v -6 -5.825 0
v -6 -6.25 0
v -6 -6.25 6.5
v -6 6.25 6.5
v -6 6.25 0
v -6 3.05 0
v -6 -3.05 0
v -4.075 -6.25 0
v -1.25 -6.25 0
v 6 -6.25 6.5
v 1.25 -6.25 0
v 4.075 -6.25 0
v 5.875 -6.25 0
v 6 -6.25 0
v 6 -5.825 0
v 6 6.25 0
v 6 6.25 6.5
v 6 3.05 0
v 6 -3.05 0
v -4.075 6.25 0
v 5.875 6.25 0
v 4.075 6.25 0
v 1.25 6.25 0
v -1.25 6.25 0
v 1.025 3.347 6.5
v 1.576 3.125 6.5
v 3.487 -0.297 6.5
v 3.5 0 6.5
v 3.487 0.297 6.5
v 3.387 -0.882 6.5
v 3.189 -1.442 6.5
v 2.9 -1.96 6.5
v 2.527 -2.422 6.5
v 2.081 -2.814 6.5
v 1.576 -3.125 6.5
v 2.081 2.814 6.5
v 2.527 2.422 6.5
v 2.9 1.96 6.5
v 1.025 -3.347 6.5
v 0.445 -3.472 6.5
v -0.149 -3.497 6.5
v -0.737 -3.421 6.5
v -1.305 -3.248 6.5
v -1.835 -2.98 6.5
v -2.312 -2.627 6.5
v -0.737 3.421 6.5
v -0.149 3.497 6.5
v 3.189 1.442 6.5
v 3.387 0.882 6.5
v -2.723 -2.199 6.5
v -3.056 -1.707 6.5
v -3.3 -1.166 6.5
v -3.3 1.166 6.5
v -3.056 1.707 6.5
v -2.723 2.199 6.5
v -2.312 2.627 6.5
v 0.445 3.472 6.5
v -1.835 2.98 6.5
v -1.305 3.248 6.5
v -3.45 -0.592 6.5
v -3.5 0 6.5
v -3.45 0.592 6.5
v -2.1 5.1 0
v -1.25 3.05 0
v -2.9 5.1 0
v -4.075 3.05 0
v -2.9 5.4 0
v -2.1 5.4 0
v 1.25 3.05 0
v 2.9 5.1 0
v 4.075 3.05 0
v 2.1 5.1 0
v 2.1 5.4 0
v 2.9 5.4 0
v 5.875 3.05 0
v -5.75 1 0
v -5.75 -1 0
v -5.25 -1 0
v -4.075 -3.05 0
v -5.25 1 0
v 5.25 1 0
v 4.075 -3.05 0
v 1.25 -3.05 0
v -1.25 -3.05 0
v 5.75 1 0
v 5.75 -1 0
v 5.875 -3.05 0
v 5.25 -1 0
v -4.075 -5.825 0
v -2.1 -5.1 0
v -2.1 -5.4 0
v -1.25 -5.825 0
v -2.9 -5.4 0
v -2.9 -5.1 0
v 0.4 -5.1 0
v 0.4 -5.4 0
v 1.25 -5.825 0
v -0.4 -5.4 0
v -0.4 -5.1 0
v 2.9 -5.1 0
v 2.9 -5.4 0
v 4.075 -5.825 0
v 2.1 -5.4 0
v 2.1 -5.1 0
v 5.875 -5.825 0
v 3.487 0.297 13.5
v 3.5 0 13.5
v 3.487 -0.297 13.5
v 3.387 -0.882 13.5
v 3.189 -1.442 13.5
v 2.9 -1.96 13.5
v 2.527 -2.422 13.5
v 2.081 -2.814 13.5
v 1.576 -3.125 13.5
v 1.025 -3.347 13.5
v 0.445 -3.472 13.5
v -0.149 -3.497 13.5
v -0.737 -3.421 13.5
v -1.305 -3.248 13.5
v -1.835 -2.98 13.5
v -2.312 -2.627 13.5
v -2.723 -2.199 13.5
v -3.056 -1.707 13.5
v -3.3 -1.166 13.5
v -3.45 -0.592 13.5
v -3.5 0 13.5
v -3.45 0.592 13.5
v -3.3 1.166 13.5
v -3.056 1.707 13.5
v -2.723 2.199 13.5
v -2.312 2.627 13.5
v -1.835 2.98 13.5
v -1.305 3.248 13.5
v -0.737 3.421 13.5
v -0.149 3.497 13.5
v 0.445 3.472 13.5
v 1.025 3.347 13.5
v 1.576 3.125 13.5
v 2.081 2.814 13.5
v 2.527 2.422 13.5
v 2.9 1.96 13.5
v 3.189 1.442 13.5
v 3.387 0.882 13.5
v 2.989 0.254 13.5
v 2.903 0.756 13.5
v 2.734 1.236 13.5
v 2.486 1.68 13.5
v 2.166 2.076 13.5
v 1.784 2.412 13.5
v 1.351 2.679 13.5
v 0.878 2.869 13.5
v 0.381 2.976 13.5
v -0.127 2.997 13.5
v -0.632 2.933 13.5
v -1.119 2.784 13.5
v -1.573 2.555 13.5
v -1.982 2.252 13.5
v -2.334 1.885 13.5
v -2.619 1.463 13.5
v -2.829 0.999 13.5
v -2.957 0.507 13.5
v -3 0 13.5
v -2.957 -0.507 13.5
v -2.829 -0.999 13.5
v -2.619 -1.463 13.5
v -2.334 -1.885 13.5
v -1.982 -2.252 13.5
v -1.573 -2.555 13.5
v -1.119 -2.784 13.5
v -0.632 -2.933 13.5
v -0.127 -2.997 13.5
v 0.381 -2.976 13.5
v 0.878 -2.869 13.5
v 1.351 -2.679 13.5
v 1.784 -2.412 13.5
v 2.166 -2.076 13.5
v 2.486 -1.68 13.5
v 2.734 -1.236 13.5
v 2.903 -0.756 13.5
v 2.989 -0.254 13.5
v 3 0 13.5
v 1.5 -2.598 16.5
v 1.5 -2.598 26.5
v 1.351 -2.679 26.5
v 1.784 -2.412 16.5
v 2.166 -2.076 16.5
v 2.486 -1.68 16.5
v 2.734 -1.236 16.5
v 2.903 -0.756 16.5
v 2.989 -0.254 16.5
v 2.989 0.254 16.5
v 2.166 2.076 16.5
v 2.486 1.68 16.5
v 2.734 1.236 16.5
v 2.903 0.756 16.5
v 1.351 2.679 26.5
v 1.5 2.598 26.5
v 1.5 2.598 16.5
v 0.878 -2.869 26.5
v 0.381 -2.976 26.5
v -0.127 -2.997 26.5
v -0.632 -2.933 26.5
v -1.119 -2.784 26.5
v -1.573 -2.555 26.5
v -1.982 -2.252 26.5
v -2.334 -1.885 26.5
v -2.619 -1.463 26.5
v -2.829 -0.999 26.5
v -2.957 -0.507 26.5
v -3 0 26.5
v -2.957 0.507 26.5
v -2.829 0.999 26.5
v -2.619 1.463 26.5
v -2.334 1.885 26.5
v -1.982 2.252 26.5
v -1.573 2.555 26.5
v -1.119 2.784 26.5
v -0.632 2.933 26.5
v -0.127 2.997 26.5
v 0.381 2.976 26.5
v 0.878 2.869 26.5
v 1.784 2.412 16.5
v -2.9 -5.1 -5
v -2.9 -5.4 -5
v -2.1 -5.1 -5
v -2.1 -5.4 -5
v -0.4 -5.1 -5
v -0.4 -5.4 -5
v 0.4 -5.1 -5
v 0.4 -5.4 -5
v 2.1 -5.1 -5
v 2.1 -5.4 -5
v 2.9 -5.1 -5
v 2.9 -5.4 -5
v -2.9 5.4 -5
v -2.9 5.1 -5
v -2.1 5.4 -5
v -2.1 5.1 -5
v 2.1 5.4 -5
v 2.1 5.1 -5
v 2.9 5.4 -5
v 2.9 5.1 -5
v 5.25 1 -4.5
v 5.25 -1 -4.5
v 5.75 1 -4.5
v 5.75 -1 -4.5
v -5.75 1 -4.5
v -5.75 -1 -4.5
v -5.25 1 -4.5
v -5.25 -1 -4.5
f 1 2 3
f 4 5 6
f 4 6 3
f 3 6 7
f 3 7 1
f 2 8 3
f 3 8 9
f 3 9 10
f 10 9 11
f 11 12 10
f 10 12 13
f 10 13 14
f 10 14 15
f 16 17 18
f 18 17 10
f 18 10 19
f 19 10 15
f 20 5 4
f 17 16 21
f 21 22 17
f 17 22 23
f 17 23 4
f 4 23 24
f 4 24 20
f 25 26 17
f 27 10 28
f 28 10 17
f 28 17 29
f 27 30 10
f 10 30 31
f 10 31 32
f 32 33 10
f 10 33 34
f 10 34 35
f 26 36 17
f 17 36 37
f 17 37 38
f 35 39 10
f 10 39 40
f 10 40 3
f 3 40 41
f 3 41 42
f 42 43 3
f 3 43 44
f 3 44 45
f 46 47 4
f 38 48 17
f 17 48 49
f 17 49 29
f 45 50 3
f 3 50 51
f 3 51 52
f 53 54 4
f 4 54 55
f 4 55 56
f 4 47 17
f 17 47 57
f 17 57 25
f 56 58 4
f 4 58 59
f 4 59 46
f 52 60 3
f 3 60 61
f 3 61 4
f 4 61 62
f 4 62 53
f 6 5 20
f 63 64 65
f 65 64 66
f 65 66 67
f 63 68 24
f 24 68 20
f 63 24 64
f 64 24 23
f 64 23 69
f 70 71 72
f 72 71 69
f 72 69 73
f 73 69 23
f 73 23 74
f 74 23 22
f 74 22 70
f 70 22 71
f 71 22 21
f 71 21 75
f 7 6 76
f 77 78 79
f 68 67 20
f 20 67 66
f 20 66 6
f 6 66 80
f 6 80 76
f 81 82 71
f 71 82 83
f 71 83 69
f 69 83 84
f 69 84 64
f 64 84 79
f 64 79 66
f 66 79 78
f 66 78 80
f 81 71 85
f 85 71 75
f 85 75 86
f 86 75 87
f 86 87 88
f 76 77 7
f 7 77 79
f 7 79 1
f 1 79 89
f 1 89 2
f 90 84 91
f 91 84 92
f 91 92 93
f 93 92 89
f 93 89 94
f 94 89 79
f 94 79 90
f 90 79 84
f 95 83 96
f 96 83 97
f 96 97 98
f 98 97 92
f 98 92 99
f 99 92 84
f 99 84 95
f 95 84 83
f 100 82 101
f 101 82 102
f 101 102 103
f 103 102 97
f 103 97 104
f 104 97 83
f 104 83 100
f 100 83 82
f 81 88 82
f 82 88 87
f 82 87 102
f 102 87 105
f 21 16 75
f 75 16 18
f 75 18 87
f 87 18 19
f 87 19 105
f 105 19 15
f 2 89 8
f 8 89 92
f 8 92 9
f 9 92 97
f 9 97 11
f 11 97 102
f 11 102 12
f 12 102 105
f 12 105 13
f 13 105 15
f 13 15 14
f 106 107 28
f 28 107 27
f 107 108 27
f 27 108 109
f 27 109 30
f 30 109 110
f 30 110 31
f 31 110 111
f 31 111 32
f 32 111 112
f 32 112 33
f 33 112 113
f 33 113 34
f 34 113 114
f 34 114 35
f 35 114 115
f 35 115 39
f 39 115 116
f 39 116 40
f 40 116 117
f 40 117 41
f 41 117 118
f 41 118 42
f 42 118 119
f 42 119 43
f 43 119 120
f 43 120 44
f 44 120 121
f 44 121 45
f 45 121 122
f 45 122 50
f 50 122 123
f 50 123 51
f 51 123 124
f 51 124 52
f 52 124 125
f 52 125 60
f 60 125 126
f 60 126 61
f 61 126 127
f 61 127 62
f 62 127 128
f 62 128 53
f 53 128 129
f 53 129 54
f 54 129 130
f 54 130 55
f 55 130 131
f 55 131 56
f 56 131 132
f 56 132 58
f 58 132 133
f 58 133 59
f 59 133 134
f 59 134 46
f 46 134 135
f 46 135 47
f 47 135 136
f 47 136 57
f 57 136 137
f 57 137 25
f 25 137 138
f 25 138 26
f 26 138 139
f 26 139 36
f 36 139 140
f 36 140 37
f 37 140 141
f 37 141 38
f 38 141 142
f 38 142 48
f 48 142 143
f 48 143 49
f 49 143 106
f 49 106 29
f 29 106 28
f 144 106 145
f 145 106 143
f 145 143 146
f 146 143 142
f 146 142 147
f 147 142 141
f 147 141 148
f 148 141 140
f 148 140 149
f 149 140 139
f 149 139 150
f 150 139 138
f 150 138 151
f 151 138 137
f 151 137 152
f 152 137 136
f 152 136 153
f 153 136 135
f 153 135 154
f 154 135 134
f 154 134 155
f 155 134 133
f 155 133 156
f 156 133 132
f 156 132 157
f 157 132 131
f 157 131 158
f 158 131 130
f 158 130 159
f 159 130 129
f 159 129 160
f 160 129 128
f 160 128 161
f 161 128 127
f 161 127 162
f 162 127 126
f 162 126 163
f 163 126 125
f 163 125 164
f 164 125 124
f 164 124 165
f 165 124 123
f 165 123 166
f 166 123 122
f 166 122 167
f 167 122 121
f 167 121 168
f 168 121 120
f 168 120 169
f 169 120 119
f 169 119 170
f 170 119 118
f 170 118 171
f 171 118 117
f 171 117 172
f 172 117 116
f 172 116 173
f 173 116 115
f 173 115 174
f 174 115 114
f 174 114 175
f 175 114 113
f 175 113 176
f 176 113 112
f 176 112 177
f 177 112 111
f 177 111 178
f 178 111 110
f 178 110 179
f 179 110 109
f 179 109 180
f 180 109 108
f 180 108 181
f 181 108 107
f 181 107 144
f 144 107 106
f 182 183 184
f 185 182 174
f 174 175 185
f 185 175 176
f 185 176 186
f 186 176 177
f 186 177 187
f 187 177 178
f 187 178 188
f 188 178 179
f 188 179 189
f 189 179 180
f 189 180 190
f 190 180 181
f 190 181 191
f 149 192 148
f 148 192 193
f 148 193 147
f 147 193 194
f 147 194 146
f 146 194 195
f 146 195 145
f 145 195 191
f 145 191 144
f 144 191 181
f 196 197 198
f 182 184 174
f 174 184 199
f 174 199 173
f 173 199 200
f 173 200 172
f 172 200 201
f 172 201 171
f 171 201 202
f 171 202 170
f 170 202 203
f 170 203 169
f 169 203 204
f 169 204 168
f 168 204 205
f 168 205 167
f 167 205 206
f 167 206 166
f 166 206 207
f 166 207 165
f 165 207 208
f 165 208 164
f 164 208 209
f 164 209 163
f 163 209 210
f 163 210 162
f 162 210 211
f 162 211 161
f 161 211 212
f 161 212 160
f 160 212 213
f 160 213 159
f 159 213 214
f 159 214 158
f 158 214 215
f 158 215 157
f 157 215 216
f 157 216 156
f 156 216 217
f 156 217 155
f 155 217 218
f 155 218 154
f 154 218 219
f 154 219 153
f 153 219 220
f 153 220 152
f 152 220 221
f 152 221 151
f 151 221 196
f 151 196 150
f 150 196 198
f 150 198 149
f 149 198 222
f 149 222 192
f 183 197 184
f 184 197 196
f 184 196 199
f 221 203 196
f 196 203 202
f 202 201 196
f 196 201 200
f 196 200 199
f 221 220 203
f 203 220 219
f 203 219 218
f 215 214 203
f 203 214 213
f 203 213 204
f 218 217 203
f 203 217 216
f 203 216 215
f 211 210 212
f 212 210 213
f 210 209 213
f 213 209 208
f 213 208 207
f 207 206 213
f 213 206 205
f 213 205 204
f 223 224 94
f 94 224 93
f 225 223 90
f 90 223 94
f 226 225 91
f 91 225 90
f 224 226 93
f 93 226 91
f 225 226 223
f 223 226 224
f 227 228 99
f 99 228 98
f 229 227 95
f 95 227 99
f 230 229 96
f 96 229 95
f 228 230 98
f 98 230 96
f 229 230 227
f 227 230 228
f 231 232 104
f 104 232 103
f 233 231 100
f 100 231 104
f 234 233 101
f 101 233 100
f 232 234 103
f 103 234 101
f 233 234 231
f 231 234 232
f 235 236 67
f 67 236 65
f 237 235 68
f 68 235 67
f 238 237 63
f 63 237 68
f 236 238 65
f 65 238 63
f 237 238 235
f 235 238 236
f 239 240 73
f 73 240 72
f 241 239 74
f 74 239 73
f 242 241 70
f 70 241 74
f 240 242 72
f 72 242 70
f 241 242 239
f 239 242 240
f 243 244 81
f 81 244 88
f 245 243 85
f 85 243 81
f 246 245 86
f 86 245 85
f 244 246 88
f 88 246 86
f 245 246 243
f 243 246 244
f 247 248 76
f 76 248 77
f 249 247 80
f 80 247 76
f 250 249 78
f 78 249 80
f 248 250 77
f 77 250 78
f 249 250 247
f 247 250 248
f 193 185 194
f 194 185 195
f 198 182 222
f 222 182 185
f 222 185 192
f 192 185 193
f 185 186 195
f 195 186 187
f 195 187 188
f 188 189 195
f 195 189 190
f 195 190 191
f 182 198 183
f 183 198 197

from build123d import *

# Parameters (mm, degrees)
SKETCH1_W     = 12
SKETCH1_H     = 12.5
BODY_DEPTH    = 6.5
SKETCH2_R     = 3.5
BUSHING_DEPTH = 7
SKETCH3_R     = 3
SHAFT_DEPTH   = 13
SKETCH4_W     = 0.8
SKETCH4_H     = 0.3
PINS_DEPTH    = 5
SKETCH5_W     = 0.5
SKETCH5_H     = 2
TABS_DEPTH    = 4.5
SKETCH6_W     = 4
SKETCH6_H     = 8
D_FLAT_DEPTH  = 10


with BuildPart() as part:
    # Sketch1 → Body (new body)
    with BuildSketch(Plane.XY):
        Rectangle(SKETCH1_W, SKETCH1_H)
    extrude(amount=BODY_DEPTH)

    # Sketch2 → Bushing (add)
    with BuildSketch(Plane.XY.offset(6.5)):
        Circle(SKETCH2_R)
    extrude(amount=BUSHING_DEPTH)

    # Sketch3 → Shaft (add)
    with BuildSketch(Plane.XY.offset(13.5)):
        Circle(SKETCH3_R)
    extrude(amount=SHAFT_DEPTH)

    # Sketch4 → Pins (add)
    with BuildSketch(Plane.XY):
        with Locations((-2.5, -5.25)):
            Rectangle(SKETCH4_W, SKETCH4_H)
        with Locations((0, -5.25)):
            Rectangle(SKETCH4_W, SKETCH4_H)
        with Locations((2.5, -5.25)):
            Rectangle(SKETCH4_W, SKETCH4_H)
        with Locations((-2.5, 5.25)):
            Rectangle(SKETCH4_W, SKETCH4_H)
        with Locations((2.5, 5.25)):
            Rectangle(SKETCH4_W, SKETCH4_H)
    extrude(amount=-PINS_DEPTH)

    # Sketch5 → Tabs (add)
    with BuildSketch(Plane.XY):
        with Locations((-5.5, 0)):
            Rectangle(SKETCH5_W, SKETCH5_H)
        with Locations((5.5, 0)):
            Rectangle(SKETCH5_W, SKETCH5_H)
    extrude(amount=-TABS_DEPTH)

    # Sketch6 → D_flat (cut)
    with BuildSketch(Plane.XY.offset(26.5)):
        with Locations((3.5, 0)):
            Rectangle(SKETCH6_W, SKETCH6_H)
    extrude(amount=-D_FLAT_DEPTH, mode=Mode.SUBTRACT)


solid = part.part
